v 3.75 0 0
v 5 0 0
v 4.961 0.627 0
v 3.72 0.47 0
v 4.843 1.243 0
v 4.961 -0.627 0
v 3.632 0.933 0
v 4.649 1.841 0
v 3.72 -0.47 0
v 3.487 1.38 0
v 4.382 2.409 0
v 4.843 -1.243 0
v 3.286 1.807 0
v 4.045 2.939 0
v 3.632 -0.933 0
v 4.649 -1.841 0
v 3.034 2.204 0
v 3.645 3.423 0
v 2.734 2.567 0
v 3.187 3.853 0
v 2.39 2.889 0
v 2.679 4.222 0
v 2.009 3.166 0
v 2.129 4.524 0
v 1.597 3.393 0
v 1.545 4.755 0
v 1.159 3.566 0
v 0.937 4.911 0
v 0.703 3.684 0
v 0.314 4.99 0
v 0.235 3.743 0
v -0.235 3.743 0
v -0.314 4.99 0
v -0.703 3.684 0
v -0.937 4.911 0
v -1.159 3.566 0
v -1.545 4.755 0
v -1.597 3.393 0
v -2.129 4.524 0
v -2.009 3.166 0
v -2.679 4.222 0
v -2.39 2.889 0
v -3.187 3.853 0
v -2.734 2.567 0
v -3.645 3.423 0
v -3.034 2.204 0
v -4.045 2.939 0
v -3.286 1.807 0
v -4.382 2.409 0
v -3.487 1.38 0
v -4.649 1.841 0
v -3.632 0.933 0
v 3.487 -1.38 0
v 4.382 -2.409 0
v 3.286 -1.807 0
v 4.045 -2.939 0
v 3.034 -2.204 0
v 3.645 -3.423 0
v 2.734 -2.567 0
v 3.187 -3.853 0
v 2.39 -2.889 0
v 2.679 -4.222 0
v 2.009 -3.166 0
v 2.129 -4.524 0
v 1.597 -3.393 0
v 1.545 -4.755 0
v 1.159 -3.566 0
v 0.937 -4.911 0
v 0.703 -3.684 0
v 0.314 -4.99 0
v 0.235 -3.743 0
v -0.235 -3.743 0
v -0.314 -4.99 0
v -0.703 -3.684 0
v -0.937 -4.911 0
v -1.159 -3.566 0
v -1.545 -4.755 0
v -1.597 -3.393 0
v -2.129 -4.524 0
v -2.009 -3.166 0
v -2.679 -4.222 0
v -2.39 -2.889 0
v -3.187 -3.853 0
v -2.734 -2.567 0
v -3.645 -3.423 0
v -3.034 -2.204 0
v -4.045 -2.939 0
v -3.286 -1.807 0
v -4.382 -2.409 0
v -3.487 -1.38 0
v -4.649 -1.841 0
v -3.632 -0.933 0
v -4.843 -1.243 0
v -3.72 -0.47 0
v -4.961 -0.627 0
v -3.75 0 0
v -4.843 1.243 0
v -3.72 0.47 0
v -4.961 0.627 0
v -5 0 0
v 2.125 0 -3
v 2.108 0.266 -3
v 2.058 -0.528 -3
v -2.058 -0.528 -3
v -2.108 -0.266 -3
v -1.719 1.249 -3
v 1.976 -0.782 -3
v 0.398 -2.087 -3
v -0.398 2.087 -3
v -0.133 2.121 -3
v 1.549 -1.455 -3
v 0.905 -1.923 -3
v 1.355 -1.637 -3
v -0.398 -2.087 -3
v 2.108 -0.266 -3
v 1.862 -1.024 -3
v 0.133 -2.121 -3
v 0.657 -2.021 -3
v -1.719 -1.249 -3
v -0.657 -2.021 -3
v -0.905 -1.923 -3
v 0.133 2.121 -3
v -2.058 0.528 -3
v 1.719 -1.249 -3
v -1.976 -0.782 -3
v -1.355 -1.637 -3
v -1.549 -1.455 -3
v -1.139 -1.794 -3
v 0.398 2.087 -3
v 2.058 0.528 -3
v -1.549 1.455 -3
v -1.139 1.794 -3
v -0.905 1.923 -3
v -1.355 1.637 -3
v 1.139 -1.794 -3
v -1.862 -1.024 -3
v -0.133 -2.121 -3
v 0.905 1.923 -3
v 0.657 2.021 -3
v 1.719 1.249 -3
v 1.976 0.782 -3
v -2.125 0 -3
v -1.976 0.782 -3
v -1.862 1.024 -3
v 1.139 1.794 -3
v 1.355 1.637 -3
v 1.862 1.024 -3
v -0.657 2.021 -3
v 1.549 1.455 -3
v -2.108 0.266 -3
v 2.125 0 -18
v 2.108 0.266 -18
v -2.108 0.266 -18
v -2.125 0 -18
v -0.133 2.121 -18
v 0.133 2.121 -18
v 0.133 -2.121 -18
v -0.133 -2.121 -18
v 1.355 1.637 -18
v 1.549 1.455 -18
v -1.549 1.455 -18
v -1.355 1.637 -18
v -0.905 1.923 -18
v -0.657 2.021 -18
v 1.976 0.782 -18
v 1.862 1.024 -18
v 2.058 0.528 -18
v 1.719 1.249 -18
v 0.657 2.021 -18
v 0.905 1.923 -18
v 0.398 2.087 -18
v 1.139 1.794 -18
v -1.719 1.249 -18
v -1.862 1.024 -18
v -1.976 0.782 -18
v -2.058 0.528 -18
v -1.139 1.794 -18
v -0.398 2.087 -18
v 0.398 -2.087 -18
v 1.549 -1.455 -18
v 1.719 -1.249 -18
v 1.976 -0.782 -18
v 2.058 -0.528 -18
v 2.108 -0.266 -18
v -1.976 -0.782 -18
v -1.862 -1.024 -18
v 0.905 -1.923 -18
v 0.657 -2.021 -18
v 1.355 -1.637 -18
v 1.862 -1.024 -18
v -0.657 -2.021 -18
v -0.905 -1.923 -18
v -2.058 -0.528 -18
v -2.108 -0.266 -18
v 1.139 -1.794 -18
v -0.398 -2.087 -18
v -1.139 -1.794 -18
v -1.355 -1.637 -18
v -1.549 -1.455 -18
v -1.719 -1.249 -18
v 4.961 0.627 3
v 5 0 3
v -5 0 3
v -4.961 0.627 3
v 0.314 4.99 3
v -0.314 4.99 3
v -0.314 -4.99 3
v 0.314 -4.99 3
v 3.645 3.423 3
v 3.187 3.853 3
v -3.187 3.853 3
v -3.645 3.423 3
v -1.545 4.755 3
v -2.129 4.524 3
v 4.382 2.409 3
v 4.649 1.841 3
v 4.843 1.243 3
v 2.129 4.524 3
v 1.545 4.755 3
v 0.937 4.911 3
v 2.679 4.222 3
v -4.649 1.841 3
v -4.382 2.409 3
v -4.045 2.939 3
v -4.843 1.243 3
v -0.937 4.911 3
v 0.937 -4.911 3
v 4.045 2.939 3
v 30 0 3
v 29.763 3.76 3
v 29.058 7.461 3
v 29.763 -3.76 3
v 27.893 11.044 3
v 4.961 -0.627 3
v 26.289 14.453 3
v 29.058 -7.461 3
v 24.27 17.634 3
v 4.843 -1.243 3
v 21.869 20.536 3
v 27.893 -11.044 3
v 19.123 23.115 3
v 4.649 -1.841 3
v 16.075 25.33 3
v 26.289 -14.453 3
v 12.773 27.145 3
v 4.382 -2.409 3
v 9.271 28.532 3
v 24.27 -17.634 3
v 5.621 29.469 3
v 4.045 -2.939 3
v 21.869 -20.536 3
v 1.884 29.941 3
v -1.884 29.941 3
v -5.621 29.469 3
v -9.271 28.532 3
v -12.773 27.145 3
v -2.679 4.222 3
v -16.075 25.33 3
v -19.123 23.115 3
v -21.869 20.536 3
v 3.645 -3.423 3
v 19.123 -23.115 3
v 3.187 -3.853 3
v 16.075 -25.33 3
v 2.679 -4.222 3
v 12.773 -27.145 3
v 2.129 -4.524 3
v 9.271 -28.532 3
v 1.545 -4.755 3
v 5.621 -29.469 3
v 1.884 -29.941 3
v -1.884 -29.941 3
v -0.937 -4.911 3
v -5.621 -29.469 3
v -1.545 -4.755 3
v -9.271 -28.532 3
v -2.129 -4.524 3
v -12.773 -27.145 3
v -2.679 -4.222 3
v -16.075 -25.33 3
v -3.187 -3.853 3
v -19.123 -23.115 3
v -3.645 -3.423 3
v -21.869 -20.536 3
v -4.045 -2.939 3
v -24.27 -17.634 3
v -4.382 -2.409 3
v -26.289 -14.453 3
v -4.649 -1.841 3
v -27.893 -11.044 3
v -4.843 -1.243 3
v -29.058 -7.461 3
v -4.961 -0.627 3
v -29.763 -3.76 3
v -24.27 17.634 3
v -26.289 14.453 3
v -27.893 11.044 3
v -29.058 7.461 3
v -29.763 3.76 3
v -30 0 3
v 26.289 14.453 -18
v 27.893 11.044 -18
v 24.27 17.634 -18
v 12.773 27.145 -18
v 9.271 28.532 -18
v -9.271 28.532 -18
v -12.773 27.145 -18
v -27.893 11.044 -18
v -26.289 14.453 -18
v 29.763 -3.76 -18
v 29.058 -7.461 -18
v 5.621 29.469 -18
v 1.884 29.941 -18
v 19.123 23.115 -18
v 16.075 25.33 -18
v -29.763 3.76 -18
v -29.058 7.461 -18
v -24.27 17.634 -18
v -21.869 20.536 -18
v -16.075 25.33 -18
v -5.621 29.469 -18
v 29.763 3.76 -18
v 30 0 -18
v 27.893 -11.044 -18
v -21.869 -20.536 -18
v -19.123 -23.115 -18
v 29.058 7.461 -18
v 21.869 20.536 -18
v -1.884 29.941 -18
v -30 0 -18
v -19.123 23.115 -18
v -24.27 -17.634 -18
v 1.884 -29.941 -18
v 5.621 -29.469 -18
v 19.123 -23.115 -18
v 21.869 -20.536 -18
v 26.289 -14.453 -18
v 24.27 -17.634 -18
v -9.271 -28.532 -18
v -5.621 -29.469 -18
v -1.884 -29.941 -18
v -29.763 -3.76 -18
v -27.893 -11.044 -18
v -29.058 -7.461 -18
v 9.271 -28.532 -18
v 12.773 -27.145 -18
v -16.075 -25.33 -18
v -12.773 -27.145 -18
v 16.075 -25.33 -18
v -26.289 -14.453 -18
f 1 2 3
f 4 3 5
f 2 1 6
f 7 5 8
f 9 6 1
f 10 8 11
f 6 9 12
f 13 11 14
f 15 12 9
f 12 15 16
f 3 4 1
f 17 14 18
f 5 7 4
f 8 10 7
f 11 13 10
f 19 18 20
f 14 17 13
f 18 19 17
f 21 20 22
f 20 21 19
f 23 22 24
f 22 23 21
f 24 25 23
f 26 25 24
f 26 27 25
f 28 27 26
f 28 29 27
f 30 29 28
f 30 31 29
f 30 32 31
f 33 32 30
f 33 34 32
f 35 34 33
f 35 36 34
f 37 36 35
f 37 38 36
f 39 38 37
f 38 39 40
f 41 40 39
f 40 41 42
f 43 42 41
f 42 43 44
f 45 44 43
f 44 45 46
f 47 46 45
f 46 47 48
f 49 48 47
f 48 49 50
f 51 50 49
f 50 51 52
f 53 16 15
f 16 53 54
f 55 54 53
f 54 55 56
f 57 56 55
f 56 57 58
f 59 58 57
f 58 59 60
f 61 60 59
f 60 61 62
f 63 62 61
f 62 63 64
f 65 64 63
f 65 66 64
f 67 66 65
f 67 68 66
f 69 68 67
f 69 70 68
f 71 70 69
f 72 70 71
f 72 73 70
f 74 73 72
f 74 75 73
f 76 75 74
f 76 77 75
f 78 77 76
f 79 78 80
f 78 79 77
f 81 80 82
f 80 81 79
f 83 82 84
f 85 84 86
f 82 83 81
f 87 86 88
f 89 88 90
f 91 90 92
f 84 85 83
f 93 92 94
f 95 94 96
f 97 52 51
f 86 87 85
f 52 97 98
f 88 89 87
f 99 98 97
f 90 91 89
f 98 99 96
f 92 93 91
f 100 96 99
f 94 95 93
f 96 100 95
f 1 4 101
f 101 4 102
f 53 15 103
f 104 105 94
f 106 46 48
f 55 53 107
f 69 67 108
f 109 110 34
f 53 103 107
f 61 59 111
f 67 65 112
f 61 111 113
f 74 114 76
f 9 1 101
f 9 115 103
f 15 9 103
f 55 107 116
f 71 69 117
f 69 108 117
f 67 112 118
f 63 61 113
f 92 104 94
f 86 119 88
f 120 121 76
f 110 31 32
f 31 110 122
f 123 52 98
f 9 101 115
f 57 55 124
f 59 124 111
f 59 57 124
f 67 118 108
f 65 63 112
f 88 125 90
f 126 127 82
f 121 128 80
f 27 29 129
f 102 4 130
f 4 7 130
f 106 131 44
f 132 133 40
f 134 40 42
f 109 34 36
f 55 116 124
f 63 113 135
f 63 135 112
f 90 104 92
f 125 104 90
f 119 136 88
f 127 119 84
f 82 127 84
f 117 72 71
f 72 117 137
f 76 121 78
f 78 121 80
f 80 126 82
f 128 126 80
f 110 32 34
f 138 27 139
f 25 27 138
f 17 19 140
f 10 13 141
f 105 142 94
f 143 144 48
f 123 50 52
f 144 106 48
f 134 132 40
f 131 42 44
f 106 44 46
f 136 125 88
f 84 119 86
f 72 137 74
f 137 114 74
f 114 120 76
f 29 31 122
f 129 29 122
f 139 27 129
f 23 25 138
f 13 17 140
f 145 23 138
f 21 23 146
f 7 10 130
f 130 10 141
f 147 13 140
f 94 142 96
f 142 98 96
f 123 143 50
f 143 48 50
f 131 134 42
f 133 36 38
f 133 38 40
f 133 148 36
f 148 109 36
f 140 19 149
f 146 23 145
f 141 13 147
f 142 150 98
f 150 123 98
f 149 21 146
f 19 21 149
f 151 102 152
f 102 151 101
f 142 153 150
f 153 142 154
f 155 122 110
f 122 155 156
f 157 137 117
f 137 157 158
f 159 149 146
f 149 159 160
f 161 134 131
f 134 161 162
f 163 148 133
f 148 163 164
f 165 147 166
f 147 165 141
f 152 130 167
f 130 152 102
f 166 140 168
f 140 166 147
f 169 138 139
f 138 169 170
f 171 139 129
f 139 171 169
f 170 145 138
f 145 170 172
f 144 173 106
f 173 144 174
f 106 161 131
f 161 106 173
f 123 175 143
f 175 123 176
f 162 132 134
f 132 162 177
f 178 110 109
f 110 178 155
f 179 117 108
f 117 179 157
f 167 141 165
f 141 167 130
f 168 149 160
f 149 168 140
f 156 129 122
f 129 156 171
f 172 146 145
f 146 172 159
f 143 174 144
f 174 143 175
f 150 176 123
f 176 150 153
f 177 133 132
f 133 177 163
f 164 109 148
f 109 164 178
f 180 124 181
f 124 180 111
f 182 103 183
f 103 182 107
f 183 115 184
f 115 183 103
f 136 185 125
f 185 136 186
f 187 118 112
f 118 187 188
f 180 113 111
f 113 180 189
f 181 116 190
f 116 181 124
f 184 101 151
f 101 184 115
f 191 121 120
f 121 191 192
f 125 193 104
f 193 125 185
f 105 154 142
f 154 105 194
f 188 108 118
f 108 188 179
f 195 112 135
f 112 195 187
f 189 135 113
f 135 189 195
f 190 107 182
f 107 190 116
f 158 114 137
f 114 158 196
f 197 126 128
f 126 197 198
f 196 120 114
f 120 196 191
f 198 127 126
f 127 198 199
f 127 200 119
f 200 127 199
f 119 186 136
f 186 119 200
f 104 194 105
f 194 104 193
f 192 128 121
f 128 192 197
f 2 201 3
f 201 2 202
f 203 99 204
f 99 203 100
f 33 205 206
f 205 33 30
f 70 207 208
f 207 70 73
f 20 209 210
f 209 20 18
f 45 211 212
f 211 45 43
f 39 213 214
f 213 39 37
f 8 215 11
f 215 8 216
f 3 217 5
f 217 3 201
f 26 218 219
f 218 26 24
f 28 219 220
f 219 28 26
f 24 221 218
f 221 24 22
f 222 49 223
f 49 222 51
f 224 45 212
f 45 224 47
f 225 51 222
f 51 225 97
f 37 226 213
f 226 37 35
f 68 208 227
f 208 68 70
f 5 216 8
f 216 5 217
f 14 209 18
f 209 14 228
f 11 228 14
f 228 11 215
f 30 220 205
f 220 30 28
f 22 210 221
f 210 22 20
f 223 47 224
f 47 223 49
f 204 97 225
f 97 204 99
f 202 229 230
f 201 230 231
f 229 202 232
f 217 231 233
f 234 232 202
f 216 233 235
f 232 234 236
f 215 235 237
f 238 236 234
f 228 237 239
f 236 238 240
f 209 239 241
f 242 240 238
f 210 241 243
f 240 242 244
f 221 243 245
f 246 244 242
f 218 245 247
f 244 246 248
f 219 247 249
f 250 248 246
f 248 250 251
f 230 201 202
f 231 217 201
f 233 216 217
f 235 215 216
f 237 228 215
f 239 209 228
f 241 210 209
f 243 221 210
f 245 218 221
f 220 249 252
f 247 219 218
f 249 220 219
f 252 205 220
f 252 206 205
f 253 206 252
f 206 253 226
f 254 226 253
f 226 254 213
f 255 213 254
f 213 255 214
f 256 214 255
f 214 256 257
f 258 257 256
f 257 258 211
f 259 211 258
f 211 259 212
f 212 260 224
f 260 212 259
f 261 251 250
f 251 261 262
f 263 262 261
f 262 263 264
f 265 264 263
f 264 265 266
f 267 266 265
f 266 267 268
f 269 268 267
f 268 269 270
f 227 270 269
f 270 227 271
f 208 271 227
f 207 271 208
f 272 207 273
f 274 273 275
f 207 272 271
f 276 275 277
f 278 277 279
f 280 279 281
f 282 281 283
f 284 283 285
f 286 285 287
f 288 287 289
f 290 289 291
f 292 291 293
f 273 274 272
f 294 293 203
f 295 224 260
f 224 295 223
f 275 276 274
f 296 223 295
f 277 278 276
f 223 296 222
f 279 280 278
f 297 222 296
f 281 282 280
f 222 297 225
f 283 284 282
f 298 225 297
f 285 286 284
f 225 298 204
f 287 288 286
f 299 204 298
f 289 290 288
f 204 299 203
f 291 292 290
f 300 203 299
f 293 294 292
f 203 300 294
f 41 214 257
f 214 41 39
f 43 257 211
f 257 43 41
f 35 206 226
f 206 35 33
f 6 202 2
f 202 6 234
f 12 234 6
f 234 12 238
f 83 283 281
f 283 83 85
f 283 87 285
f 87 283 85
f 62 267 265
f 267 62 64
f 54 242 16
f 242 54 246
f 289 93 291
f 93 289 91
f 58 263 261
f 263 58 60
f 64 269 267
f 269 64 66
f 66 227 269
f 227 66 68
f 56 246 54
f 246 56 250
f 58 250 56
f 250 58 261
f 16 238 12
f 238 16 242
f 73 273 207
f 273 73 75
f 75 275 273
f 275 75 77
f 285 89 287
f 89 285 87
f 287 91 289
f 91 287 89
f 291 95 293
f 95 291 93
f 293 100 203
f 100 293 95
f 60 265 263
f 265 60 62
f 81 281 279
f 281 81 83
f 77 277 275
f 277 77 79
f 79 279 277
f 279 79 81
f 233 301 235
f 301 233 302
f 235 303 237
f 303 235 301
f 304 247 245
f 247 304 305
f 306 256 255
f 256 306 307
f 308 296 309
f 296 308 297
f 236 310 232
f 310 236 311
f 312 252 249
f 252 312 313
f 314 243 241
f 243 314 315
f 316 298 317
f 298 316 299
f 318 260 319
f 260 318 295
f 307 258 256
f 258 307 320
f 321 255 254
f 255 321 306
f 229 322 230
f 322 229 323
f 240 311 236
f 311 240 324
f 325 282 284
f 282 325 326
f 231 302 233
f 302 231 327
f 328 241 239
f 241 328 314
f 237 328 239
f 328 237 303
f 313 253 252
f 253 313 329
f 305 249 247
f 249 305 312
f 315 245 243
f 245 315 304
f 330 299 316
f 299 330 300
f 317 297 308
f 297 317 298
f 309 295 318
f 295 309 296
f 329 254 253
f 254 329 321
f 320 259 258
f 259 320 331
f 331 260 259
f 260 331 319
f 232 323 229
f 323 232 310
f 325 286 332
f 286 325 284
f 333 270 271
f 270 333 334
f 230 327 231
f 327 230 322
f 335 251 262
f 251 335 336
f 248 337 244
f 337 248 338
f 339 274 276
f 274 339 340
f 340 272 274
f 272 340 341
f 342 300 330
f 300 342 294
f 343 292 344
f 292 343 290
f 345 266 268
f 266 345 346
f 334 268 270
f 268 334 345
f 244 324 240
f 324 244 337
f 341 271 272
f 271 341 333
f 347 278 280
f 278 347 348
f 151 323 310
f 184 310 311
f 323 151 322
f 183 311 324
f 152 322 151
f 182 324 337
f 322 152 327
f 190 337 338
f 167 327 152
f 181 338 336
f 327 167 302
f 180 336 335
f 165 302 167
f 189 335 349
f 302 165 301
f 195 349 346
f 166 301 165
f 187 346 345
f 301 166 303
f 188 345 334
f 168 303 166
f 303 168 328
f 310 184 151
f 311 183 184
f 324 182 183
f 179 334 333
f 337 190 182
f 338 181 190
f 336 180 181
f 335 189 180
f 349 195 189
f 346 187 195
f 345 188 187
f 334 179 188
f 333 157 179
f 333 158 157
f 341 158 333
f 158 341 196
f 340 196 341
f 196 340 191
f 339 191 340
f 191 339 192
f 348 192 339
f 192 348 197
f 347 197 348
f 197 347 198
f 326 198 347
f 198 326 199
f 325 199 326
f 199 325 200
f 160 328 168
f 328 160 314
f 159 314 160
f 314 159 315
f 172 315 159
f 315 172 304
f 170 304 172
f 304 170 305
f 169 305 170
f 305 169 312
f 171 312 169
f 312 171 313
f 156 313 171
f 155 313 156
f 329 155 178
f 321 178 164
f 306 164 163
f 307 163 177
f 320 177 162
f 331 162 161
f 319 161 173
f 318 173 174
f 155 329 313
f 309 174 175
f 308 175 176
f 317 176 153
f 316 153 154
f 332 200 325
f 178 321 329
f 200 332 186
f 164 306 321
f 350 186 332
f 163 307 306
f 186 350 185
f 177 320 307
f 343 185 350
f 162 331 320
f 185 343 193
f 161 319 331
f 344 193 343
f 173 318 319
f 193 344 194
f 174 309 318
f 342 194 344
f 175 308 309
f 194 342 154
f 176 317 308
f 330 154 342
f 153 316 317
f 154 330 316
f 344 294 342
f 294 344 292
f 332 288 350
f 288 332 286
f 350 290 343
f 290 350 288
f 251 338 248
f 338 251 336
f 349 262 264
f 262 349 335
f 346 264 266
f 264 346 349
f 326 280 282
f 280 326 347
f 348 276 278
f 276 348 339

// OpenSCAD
$fn = 50;


difference() {
	union() {
		translate(v = [0, 0, -18.0000000000]) {
			cylinder(h = 21, r = 30.0000000000);
		}
	}
	union() {
		translate(v = [0, 0, 0]) {
			rotate(a = [0, 0, 0]) {
				difference() {
					union() {
						translate(v = [0, 0, -21.0000000000]) {
							cylinder(h = 21, r = 2.0000000000);
						}
						translate(v = [0, 0, -3]) {
							cylinder(h = 3, r1 = 2.1250000000, r2 = 3.7500000000);
						}
						translate(v = [0, 0, -21.0000000000]) {
							cylinder(h = 21, r = 2.1250000000);
						}
						translate(v = [0, 0, -21.0000000000]) {
							cylinder(h = 21, r = 2.0000000000);
						}
					}
					union();
				}
			}
		}
		#cylinder(h = 3, r = 5.0000000000);
	}
}
